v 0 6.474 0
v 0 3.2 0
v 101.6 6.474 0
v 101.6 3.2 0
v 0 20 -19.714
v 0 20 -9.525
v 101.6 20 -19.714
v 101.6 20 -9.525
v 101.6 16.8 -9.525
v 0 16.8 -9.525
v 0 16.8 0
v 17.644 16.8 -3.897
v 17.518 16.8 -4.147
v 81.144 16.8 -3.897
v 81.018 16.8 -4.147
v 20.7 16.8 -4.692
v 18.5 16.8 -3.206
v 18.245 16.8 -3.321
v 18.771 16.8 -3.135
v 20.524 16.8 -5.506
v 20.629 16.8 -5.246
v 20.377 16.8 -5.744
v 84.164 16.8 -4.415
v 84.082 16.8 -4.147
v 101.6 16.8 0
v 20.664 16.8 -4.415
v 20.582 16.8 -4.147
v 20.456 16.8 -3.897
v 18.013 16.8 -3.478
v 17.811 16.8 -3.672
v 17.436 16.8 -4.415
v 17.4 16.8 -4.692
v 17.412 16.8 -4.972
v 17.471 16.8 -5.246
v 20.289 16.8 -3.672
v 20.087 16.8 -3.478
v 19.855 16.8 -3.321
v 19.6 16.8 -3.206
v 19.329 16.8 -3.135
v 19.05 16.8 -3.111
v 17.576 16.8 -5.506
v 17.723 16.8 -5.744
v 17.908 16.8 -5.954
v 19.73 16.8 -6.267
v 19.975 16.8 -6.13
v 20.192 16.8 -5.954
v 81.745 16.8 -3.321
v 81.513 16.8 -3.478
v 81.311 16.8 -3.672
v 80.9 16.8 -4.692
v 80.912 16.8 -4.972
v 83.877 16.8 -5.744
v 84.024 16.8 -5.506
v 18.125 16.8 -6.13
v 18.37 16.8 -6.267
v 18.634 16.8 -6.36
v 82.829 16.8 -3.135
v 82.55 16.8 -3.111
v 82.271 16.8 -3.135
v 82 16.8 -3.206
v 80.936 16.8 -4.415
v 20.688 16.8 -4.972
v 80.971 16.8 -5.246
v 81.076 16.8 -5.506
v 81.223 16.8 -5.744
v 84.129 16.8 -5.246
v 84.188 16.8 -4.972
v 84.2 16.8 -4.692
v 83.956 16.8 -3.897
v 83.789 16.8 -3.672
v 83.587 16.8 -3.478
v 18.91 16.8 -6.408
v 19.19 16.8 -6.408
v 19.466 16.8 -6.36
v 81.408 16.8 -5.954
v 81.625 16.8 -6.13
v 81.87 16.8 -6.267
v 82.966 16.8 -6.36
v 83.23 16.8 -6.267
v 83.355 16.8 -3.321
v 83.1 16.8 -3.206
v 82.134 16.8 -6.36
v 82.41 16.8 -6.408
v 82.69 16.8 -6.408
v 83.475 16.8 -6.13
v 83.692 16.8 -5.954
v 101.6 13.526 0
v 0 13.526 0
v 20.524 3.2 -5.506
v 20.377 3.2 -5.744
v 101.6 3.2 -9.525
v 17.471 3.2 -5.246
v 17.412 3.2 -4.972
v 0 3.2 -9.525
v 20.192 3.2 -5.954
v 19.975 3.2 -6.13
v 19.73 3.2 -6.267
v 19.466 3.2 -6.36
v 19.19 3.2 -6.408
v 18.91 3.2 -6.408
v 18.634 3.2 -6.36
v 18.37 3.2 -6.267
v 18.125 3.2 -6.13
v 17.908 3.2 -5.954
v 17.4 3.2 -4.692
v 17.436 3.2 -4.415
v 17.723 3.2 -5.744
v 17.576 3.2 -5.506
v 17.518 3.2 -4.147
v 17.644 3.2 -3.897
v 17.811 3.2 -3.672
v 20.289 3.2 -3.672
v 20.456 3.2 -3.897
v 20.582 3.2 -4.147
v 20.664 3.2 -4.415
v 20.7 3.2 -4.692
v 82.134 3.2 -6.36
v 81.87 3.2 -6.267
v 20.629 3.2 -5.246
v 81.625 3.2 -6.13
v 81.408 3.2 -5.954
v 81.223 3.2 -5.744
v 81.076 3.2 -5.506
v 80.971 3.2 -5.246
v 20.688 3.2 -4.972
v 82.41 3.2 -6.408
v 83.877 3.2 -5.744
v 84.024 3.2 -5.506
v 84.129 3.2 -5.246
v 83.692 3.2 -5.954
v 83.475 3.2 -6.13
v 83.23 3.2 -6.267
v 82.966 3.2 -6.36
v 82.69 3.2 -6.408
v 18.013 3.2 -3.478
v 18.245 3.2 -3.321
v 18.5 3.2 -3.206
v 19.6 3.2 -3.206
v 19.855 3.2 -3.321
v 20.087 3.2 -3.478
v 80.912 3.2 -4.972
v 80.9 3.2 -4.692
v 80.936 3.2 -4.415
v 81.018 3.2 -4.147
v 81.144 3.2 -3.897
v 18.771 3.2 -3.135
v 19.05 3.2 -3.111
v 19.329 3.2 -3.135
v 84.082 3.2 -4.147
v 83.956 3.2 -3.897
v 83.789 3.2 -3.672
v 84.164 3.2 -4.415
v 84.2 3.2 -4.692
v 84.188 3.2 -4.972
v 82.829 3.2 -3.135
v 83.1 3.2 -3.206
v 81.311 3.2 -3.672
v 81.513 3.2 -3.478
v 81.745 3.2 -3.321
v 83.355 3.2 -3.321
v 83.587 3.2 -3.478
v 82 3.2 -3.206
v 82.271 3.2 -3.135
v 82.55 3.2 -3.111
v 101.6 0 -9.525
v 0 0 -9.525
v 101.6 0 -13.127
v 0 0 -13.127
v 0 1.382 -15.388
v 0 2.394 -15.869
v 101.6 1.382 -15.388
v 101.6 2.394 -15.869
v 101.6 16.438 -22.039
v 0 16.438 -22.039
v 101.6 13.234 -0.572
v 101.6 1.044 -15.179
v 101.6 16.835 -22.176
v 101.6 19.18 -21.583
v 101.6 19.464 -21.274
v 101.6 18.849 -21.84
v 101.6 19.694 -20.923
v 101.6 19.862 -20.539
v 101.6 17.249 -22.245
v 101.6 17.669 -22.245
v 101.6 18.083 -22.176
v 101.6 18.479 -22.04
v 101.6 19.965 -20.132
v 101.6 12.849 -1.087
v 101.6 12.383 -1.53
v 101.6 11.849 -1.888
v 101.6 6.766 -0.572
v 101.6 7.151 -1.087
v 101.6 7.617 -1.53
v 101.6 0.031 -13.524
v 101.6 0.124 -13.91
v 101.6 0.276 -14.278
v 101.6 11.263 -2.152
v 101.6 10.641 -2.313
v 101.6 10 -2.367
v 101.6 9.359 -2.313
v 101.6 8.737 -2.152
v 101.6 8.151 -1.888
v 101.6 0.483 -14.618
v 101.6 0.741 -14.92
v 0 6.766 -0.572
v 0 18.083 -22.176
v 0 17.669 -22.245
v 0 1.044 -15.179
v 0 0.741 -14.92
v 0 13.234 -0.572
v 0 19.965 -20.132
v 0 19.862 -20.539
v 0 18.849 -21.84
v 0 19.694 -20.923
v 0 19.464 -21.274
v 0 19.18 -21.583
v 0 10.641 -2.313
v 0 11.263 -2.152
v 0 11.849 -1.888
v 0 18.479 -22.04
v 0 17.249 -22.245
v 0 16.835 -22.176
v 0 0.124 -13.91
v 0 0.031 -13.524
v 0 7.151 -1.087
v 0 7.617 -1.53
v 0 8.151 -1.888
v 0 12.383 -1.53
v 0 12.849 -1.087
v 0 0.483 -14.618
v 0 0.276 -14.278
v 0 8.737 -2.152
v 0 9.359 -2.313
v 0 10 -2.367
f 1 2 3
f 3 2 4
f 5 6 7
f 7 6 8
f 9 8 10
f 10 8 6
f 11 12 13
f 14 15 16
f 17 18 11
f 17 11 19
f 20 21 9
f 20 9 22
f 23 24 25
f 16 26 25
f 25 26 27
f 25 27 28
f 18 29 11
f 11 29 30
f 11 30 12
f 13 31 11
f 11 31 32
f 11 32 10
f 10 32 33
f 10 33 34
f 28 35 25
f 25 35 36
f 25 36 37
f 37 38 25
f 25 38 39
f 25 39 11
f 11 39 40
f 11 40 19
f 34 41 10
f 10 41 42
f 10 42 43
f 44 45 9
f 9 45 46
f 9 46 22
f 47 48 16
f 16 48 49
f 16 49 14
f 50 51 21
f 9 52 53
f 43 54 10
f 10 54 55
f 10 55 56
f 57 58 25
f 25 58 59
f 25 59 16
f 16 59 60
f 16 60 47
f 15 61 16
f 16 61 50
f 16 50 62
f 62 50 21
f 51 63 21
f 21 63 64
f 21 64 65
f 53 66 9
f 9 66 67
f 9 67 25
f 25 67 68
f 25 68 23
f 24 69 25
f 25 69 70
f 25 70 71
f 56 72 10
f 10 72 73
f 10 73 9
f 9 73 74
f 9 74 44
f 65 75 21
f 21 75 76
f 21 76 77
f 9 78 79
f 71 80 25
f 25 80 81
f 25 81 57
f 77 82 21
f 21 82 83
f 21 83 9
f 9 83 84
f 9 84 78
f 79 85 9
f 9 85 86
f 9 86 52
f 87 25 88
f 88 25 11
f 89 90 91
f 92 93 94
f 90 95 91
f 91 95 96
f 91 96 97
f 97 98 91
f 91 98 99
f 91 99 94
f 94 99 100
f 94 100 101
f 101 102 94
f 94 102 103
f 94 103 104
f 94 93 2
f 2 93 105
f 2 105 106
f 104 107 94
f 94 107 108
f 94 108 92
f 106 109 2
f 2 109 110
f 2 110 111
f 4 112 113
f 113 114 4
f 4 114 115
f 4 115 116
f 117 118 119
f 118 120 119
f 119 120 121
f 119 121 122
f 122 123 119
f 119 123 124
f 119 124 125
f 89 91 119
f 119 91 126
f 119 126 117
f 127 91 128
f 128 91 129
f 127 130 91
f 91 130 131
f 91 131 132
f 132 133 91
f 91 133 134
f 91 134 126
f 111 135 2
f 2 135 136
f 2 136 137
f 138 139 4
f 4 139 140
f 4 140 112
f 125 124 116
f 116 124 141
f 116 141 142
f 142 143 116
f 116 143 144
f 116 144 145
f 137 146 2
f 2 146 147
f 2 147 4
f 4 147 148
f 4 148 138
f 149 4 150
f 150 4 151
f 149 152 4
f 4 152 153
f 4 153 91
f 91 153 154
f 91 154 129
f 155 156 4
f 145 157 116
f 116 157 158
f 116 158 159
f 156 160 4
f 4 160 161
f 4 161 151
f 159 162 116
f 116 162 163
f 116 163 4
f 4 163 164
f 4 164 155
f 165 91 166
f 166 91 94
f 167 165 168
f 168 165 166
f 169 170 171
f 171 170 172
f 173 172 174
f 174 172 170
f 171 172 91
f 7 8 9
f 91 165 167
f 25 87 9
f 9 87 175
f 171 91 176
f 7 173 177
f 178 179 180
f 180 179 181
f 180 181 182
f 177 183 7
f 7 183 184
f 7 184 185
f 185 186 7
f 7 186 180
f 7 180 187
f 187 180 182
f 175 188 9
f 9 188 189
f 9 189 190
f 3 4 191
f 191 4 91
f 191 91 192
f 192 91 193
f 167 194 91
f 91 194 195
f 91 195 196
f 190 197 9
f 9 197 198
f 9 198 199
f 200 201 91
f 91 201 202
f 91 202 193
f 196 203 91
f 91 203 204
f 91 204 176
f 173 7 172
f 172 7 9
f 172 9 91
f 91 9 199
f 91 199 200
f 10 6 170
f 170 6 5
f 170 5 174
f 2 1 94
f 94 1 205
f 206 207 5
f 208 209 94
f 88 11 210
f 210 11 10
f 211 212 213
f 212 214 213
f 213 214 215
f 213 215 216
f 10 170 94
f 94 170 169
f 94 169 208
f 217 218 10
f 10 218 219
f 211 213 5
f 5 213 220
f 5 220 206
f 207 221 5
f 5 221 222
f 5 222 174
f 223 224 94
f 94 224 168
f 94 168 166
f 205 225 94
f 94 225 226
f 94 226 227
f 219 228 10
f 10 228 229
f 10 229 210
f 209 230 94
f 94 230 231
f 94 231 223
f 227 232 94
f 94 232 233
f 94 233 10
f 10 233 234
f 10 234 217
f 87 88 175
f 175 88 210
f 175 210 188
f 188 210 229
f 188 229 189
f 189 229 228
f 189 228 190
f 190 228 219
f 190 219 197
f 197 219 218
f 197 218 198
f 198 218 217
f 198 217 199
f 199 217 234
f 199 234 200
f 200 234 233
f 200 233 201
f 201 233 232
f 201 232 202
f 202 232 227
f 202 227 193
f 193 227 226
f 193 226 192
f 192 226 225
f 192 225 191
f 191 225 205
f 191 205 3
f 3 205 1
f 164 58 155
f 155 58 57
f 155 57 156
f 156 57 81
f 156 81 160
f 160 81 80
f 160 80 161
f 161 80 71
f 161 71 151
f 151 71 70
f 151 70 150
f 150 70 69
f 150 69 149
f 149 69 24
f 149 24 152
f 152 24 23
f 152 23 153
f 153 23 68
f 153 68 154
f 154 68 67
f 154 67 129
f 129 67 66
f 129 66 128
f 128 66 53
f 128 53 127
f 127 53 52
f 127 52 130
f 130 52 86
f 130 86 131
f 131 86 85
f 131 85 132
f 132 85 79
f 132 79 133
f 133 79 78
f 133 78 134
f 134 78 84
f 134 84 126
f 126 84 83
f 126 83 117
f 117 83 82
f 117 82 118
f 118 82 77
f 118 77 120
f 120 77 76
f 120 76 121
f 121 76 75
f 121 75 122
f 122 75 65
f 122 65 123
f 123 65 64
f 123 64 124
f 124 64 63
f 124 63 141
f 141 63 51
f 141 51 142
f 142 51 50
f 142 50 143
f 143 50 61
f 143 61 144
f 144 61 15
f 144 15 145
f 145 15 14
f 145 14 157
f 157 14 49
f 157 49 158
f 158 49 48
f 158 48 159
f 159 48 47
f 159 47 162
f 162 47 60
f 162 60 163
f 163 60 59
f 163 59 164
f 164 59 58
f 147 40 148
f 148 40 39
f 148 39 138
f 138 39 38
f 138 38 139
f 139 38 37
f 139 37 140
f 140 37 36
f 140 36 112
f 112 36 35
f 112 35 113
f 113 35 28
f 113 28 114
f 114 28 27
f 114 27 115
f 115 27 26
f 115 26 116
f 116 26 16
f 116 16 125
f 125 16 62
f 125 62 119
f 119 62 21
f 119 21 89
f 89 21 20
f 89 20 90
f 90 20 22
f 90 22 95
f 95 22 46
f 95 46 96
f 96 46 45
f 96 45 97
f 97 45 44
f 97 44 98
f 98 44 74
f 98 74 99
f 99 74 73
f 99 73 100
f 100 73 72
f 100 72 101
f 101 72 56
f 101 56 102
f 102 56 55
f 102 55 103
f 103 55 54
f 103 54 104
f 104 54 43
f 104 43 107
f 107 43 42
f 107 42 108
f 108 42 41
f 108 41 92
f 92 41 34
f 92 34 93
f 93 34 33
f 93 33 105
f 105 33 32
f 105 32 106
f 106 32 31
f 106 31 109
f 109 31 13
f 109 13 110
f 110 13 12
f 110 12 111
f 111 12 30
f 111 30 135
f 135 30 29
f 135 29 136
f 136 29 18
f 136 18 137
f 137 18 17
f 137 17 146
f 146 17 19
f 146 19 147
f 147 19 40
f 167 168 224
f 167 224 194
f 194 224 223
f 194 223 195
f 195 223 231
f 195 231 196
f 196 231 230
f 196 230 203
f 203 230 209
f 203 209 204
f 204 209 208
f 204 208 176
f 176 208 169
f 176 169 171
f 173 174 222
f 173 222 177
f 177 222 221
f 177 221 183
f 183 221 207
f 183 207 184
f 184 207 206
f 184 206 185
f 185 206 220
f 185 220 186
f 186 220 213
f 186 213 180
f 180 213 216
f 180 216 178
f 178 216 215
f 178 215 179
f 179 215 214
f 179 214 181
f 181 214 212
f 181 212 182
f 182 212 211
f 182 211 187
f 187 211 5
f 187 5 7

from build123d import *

# Parameters (mm, degrees)
BOSS_EXTRUDE1_DEPTH = 101.6
CUT_EXTRUDE2_DEPTH  = 101.6
SKETCH5_R           = 1.651
CUT_EXTRUDE3_DEPTH  = 13.5992
FILLET1_R           = 2.54


with BuildPart() as part:
    # Sketch1 → Boss-Extrude1 (new body)
    with BuildSketch(Plane(origin=(0, 0, 0), x_dir=(0, 0, -1), z_dir=(1, 0, 0))):
        with BuildLine():
            Line((0, 16.7996), (0, 3.2004))
            Line((0, 3.2004), (9.525, 3.2004))
            Line((9.525, 3.2004), (9.525, 0))
            Line((9.525, 0), (14.605, 0))
            ThreePointArc((14.605, 0), (15.279774052, 1.174548121), (15.868724182, 2.394392806))
            Line((15.868724182, 2.394392806), (23.603930172, 20))
            Line((23.603930172, 20), (9.525, 20))
            Line((9.525, 20), (9.525, 16.7996))
            Line((9.525, 16.7996), (0, 16.7996))
        make_face()
    extrude(amount=BOSS_EXTRUDE1_DEPTH)

    # Sketch4 → Cut-Extrude2 (cut)
    with BuildSketch(Plane.ZY):
        with BuildLine():
            Line((0, 13.526281186), (0, 6.473718814))
            ThreePointArc((0, 6.473718814), (-2.36728, 10), (0, 13.526281186))
        make_face()
    extrude(amount=-CUT_EXTRUDE2_DEPTH, mode=Mode.SUBTRACT)

    # Sketch5 → Cut-Extrude3 (cut)
    with BuildSketch(Plane(origin=(0, 16.7996, 0), x_dir=(1, 0, 0), z_dir=(0, 1, 0))):
        with Locations((19.05, 4.7625)):
            Circle(SKETCH5_R)
        with Locations((82.55, 4.7625)):
            Circle(SKETCH5_R)
    extrude(amount=-CUT_EXTRUDE3_DEPTH, mode=Mode.SUBTRACT)

    # Fillet1
    fillet1_edges = [part.edges().sort_by_distance(p)[0] for p in [
        (50.8, 20, -23.603930172),
        (50.8, 0, -14.605),
    ]]
    fillet(fillet1_edges, radius=FILLET1_R)


solid = part.part
